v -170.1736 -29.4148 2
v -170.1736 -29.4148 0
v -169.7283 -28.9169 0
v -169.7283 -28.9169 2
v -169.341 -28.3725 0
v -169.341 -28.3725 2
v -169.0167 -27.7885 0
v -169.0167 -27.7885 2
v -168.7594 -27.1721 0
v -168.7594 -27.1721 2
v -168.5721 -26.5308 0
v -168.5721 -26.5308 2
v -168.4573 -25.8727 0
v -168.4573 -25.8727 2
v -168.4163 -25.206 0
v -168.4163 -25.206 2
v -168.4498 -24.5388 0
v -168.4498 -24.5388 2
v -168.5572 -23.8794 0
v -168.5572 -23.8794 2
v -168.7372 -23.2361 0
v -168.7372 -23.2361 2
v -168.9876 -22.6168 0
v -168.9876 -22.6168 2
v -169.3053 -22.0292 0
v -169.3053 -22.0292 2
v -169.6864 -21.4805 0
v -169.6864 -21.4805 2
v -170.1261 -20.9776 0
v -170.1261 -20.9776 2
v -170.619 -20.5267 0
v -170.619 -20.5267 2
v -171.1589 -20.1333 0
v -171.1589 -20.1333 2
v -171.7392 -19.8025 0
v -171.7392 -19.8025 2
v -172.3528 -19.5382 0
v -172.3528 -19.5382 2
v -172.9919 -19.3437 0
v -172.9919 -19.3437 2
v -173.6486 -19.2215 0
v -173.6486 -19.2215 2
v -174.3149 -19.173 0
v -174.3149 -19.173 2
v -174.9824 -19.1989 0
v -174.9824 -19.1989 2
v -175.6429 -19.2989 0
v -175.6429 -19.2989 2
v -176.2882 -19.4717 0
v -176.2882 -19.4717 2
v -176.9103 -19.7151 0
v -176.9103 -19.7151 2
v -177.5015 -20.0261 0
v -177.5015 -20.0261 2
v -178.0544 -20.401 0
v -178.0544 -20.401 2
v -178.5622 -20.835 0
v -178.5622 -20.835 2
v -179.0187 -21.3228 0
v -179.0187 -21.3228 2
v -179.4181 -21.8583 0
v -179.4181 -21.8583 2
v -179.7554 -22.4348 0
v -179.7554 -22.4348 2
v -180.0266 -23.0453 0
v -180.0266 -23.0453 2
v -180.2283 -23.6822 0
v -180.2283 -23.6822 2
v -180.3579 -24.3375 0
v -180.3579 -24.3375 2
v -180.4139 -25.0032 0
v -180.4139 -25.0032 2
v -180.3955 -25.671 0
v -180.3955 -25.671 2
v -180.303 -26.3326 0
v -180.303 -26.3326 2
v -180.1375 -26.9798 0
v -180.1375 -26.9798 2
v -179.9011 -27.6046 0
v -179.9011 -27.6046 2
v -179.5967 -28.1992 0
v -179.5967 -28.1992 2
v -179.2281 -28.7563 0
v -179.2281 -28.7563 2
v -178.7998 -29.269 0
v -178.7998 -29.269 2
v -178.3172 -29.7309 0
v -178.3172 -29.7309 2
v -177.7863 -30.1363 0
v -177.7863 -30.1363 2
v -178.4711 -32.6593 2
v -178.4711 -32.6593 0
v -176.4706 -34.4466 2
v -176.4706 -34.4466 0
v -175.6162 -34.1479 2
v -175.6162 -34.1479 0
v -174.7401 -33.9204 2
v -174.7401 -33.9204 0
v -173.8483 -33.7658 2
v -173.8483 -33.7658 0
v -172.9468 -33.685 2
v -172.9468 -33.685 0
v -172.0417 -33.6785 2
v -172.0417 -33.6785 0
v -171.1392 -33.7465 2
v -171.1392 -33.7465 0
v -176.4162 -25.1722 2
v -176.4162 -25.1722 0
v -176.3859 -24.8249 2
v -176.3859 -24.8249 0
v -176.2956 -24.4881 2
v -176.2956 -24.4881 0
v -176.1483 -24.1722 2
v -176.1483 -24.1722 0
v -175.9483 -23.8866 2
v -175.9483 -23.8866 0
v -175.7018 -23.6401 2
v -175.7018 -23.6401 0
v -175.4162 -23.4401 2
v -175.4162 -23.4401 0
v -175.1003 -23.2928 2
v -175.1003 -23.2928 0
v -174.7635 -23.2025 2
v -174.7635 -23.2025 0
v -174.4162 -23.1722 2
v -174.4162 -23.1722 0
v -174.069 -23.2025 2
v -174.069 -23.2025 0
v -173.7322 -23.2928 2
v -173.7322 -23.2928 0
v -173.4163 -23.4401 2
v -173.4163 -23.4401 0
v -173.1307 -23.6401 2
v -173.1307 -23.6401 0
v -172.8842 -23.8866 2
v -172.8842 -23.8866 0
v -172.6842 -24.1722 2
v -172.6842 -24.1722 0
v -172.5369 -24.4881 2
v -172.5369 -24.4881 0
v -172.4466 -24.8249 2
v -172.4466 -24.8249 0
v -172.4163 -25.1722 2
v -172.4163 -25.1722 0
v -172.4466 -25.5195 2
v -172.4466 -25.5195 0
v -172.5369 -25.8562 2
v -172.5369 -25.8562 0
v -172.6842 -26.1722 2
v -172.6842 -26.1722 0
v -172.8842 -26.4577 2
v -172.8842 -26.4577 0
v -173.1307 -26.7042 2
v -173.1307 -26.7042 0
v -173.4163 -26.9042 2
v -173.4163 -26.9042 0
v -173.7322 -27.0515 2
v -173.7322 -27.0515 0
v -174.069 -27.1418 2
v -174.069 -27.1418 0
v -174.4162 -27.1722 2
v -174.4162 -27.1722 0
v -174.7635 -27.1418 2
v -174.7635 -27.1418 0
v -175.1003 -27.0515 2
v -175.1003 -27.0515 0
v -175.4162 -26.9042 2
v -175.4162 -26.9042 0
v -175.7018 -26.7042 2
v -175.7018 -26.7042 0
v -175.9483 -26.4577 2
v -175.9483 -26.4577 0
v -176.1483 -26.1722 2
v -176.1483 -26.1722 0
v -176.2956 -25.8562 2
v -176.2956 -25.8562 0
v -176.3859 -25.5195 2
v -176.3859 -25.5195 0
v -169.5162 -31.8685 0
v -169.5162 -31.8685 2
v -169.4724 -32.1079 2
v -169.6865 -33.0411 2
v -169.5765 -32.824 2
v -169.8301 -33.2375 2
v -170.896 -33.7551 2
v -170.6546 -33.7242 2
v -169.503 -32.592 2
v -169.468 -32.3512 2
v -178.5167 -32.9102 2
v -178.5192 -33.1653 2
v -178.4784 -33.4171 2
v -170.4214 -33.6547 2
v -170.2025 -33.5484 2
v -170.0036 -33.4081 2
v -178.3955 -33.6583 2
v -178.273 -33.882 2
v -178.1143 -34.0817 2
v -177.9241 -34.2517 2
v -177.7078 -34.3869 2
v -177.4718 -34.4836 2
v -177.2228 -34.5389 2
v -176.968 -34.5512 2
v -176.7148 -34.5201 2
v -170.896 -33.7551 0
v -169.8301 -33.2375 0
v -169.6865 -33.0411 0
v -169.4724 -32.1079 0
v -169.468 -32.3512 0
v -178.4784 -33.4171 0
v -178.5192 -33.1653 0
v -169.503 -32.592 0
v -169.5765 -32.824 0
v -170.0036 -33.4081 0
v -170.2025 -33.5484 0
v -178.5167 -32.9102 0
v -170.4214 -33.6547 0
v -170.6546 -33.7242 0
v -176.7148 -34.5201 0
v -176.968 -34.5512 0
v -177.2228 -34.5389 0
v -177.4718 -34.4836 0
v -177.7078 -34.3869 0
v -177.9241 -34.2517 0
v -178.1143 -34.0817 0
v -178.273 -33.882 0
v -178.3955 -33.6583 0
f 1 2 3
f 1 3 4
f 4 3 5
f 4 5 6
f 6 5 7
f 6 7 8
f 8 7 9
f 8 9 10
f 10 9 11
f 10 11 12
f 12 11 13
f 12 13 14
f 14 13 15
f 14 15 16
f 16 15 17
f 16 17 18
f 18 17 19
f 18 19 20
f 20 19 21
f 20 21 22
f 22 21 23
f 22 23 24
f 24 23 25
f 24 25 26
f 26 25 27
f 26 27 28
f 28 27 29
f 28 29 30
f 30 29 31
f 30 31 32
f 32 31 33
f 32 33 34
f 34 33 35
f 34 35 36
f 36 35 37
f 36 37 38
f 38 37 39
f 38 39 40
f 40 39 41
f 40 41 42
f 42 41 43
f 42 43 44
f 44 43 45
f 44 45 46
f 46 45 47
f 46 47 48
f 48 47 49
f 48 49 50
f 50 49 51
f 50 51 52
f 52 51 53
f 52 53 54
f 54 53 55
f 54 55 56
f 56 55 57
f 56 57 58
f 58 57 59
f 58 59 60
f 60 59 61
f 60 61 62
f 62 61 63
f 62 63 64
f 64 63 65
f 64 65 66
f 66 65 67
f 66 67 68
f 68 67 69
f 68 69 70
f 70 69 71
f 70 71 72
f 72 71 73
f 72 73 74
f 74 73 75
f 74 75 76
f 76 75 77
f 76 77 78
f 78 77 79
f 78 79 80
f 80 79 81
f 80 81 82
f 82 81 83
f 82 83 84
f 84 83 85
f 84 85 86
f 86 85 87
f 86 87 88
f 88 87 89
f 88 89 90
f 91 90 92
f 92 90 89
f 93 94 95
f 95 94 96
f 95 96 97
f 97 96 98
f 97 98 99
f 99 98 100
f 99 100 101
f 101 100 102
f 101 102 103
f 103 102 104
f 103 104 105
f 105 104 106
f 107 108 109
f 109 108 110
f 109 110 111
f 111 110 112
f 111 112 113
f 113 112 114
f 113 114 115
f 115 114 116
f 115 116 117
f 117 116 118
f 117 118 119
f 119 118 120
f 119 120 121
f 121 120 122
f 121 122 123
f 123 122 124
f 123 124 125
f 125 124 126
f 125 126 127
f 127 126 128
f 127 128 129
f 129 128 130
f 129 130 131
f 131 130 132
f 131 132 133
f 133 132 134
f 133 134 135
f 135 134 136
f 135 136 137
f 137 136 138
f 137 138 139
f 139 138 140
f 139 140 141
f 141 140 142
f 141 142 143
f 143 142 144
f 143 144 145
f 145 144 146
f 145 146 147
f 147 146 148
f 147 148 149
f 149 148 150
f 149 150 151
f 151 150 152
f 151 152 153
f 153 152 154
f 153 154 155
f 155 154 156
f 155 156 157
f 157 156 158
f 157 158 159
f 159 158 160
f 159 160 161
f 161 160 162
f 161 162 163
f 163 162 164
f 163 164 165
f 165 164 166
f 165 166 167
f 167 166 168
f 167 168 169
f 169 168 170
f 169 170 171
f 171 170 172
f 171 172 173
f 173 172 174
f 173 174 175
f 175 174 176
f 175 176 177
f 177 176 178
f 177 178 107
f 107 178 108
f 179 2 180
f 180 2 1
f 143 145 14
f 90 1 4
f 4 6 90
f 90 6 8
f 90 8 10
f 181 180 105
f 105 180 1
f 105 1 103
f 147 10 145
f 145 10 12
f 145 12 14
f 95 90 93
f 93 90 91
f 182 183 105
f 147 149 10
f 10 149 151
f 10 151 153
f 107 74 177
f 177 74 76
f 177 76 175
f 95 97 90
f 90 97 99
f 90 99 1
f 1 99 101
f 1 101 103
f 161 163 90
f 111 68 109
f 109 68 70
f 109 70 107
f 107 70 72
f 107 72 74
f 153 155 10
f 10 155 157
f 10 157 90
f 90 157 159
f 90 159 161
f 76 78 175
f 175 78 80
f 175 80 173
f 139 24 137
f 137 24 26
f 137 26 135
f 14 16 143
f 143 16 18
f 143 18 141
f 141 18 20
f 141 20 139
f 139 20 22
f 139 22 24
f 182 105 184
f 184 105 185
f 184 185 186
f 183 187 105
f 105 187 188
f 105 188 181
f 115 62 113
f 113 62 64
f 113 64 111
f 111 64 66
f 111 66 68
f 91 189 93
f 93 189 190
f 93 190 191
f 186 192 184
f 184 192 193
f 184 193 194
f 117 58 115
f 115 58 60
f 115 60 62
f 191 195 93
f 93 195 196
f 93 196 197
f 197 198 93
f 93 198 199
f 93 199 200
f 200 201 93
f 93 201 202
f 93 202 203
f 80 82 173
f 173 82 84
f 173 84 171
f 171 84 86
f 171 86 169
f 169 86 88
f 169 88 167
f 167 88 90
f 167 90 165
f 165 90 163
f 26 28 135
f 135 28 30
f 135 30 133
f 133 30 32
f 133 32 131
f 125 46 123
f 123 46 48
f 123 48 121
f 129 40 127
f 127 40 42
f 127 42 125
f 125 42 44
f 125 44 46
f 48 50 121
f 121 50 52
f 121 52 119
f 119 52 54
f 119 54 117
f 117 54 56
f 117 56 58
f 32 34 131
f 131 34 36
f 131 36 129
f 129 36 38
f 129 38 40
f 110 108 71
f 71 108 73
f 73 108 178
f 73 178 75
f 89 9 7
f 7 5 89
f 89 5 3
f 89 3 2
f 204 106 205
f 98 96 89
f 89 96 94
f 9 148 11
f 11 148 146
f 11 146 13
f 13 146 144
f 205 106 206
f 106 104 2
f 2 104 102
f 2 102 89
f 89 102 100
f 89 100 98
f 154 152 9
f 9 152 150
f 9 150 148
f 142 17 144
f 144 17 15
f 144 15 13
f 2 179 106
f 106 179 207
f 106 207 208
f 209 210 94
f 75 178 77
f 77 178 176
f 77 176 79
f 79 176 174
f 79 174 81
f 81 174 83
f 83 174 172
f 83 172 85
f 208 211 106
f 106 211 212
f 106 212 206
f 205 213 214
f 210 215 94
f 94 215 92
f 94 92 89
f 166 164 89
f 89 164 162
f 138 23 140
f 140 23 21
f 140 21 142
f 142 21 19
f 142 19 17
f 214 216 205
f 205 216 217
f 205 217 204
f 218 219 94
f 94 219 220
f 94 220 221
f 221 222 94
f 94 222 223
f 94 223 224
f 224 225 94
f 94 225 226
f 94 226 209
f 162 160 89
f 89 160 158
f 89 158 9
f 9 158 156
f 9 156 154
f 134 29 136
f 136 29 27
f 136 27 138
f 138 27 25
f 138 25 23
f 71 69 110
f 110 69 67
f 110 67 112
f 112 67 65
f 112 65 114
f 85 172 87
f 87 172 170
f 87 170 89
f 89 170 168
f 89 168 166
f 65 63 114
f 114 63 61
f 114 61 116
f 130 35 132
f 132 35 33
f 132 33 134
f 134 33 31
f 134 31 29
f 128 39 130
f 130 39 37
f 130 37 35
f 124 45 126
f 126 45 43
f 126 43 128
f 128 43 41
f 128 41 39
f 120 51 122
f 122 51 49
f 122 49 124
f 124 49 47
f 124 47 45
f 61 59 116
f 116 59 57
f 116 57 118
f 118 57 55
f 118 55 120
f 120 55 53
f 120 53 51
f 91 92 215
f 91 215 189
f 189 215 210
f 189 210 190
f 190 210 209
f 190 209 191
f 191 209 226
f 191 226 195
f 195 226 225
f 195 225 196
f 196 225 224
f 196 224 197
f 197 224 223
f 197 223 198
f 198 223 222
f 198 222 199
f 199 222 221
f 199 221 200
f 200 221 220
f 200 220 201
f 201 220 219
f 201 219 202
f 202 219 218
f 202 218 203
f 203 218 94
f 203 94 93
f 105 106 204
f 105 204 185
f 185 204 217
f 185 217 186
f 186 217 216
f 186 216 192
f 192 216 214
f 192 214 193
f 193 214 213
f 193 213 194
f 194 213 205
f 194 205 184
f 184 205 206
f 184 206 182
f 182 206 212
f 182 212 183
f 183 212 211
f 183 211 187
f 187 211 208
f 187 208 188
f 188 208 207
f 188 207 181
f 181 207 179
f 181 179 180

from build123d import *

# Parameters (mm, degrees)
SKETCH1_R           = 6
SKETCH1_R_2         = 2
BOSS_EXTRUDE1_DEPTH = 2
FILLET1_R           = 1.5


with BuildPart() as part:
    # Sketch1 → Boss-Extrude1 (new body)
    with BuildSketch(Plane.XY):
        with Locations((-174.416251328, -25.172160385)):
            Circle(SKETCH1_R)
        with Locations((-174.416251328, -25.172160385)):
            Circle(SKETCH1_R_2, mode=Mode.SUBTRACT)
        with BuildLine():
            ThreePointArc((-170.173610641, -29.414801072), (-173.850108495, -31.145390859), (-177.78627055, -30.13632904))
            Line((-177.78627055, -30.13632904), (-179.432101814, -36.199979912))
            ThreePointArc((-179.432101814, -36.199979912), (-174.407079396, -33.853814689), (-168.876035514, -34.257417374))
            Line((-168.876035514, -34.257417374), (-170.173610641, -29.414801072))
        make_face()
    extrude(amount=BOSS_EXTRUDE1_DEPTH)

    # Fillet1
    fillet1_edges = [part.edges().sort_by_distance(p)[0] for p in [
        (-168.876035514, -34.257417374, 1),
        (-179.432101814, -36.199979912, 1),
    ]]
    fillet(fillet1_edges, radius=FILLET1_R)


solid = part.part
